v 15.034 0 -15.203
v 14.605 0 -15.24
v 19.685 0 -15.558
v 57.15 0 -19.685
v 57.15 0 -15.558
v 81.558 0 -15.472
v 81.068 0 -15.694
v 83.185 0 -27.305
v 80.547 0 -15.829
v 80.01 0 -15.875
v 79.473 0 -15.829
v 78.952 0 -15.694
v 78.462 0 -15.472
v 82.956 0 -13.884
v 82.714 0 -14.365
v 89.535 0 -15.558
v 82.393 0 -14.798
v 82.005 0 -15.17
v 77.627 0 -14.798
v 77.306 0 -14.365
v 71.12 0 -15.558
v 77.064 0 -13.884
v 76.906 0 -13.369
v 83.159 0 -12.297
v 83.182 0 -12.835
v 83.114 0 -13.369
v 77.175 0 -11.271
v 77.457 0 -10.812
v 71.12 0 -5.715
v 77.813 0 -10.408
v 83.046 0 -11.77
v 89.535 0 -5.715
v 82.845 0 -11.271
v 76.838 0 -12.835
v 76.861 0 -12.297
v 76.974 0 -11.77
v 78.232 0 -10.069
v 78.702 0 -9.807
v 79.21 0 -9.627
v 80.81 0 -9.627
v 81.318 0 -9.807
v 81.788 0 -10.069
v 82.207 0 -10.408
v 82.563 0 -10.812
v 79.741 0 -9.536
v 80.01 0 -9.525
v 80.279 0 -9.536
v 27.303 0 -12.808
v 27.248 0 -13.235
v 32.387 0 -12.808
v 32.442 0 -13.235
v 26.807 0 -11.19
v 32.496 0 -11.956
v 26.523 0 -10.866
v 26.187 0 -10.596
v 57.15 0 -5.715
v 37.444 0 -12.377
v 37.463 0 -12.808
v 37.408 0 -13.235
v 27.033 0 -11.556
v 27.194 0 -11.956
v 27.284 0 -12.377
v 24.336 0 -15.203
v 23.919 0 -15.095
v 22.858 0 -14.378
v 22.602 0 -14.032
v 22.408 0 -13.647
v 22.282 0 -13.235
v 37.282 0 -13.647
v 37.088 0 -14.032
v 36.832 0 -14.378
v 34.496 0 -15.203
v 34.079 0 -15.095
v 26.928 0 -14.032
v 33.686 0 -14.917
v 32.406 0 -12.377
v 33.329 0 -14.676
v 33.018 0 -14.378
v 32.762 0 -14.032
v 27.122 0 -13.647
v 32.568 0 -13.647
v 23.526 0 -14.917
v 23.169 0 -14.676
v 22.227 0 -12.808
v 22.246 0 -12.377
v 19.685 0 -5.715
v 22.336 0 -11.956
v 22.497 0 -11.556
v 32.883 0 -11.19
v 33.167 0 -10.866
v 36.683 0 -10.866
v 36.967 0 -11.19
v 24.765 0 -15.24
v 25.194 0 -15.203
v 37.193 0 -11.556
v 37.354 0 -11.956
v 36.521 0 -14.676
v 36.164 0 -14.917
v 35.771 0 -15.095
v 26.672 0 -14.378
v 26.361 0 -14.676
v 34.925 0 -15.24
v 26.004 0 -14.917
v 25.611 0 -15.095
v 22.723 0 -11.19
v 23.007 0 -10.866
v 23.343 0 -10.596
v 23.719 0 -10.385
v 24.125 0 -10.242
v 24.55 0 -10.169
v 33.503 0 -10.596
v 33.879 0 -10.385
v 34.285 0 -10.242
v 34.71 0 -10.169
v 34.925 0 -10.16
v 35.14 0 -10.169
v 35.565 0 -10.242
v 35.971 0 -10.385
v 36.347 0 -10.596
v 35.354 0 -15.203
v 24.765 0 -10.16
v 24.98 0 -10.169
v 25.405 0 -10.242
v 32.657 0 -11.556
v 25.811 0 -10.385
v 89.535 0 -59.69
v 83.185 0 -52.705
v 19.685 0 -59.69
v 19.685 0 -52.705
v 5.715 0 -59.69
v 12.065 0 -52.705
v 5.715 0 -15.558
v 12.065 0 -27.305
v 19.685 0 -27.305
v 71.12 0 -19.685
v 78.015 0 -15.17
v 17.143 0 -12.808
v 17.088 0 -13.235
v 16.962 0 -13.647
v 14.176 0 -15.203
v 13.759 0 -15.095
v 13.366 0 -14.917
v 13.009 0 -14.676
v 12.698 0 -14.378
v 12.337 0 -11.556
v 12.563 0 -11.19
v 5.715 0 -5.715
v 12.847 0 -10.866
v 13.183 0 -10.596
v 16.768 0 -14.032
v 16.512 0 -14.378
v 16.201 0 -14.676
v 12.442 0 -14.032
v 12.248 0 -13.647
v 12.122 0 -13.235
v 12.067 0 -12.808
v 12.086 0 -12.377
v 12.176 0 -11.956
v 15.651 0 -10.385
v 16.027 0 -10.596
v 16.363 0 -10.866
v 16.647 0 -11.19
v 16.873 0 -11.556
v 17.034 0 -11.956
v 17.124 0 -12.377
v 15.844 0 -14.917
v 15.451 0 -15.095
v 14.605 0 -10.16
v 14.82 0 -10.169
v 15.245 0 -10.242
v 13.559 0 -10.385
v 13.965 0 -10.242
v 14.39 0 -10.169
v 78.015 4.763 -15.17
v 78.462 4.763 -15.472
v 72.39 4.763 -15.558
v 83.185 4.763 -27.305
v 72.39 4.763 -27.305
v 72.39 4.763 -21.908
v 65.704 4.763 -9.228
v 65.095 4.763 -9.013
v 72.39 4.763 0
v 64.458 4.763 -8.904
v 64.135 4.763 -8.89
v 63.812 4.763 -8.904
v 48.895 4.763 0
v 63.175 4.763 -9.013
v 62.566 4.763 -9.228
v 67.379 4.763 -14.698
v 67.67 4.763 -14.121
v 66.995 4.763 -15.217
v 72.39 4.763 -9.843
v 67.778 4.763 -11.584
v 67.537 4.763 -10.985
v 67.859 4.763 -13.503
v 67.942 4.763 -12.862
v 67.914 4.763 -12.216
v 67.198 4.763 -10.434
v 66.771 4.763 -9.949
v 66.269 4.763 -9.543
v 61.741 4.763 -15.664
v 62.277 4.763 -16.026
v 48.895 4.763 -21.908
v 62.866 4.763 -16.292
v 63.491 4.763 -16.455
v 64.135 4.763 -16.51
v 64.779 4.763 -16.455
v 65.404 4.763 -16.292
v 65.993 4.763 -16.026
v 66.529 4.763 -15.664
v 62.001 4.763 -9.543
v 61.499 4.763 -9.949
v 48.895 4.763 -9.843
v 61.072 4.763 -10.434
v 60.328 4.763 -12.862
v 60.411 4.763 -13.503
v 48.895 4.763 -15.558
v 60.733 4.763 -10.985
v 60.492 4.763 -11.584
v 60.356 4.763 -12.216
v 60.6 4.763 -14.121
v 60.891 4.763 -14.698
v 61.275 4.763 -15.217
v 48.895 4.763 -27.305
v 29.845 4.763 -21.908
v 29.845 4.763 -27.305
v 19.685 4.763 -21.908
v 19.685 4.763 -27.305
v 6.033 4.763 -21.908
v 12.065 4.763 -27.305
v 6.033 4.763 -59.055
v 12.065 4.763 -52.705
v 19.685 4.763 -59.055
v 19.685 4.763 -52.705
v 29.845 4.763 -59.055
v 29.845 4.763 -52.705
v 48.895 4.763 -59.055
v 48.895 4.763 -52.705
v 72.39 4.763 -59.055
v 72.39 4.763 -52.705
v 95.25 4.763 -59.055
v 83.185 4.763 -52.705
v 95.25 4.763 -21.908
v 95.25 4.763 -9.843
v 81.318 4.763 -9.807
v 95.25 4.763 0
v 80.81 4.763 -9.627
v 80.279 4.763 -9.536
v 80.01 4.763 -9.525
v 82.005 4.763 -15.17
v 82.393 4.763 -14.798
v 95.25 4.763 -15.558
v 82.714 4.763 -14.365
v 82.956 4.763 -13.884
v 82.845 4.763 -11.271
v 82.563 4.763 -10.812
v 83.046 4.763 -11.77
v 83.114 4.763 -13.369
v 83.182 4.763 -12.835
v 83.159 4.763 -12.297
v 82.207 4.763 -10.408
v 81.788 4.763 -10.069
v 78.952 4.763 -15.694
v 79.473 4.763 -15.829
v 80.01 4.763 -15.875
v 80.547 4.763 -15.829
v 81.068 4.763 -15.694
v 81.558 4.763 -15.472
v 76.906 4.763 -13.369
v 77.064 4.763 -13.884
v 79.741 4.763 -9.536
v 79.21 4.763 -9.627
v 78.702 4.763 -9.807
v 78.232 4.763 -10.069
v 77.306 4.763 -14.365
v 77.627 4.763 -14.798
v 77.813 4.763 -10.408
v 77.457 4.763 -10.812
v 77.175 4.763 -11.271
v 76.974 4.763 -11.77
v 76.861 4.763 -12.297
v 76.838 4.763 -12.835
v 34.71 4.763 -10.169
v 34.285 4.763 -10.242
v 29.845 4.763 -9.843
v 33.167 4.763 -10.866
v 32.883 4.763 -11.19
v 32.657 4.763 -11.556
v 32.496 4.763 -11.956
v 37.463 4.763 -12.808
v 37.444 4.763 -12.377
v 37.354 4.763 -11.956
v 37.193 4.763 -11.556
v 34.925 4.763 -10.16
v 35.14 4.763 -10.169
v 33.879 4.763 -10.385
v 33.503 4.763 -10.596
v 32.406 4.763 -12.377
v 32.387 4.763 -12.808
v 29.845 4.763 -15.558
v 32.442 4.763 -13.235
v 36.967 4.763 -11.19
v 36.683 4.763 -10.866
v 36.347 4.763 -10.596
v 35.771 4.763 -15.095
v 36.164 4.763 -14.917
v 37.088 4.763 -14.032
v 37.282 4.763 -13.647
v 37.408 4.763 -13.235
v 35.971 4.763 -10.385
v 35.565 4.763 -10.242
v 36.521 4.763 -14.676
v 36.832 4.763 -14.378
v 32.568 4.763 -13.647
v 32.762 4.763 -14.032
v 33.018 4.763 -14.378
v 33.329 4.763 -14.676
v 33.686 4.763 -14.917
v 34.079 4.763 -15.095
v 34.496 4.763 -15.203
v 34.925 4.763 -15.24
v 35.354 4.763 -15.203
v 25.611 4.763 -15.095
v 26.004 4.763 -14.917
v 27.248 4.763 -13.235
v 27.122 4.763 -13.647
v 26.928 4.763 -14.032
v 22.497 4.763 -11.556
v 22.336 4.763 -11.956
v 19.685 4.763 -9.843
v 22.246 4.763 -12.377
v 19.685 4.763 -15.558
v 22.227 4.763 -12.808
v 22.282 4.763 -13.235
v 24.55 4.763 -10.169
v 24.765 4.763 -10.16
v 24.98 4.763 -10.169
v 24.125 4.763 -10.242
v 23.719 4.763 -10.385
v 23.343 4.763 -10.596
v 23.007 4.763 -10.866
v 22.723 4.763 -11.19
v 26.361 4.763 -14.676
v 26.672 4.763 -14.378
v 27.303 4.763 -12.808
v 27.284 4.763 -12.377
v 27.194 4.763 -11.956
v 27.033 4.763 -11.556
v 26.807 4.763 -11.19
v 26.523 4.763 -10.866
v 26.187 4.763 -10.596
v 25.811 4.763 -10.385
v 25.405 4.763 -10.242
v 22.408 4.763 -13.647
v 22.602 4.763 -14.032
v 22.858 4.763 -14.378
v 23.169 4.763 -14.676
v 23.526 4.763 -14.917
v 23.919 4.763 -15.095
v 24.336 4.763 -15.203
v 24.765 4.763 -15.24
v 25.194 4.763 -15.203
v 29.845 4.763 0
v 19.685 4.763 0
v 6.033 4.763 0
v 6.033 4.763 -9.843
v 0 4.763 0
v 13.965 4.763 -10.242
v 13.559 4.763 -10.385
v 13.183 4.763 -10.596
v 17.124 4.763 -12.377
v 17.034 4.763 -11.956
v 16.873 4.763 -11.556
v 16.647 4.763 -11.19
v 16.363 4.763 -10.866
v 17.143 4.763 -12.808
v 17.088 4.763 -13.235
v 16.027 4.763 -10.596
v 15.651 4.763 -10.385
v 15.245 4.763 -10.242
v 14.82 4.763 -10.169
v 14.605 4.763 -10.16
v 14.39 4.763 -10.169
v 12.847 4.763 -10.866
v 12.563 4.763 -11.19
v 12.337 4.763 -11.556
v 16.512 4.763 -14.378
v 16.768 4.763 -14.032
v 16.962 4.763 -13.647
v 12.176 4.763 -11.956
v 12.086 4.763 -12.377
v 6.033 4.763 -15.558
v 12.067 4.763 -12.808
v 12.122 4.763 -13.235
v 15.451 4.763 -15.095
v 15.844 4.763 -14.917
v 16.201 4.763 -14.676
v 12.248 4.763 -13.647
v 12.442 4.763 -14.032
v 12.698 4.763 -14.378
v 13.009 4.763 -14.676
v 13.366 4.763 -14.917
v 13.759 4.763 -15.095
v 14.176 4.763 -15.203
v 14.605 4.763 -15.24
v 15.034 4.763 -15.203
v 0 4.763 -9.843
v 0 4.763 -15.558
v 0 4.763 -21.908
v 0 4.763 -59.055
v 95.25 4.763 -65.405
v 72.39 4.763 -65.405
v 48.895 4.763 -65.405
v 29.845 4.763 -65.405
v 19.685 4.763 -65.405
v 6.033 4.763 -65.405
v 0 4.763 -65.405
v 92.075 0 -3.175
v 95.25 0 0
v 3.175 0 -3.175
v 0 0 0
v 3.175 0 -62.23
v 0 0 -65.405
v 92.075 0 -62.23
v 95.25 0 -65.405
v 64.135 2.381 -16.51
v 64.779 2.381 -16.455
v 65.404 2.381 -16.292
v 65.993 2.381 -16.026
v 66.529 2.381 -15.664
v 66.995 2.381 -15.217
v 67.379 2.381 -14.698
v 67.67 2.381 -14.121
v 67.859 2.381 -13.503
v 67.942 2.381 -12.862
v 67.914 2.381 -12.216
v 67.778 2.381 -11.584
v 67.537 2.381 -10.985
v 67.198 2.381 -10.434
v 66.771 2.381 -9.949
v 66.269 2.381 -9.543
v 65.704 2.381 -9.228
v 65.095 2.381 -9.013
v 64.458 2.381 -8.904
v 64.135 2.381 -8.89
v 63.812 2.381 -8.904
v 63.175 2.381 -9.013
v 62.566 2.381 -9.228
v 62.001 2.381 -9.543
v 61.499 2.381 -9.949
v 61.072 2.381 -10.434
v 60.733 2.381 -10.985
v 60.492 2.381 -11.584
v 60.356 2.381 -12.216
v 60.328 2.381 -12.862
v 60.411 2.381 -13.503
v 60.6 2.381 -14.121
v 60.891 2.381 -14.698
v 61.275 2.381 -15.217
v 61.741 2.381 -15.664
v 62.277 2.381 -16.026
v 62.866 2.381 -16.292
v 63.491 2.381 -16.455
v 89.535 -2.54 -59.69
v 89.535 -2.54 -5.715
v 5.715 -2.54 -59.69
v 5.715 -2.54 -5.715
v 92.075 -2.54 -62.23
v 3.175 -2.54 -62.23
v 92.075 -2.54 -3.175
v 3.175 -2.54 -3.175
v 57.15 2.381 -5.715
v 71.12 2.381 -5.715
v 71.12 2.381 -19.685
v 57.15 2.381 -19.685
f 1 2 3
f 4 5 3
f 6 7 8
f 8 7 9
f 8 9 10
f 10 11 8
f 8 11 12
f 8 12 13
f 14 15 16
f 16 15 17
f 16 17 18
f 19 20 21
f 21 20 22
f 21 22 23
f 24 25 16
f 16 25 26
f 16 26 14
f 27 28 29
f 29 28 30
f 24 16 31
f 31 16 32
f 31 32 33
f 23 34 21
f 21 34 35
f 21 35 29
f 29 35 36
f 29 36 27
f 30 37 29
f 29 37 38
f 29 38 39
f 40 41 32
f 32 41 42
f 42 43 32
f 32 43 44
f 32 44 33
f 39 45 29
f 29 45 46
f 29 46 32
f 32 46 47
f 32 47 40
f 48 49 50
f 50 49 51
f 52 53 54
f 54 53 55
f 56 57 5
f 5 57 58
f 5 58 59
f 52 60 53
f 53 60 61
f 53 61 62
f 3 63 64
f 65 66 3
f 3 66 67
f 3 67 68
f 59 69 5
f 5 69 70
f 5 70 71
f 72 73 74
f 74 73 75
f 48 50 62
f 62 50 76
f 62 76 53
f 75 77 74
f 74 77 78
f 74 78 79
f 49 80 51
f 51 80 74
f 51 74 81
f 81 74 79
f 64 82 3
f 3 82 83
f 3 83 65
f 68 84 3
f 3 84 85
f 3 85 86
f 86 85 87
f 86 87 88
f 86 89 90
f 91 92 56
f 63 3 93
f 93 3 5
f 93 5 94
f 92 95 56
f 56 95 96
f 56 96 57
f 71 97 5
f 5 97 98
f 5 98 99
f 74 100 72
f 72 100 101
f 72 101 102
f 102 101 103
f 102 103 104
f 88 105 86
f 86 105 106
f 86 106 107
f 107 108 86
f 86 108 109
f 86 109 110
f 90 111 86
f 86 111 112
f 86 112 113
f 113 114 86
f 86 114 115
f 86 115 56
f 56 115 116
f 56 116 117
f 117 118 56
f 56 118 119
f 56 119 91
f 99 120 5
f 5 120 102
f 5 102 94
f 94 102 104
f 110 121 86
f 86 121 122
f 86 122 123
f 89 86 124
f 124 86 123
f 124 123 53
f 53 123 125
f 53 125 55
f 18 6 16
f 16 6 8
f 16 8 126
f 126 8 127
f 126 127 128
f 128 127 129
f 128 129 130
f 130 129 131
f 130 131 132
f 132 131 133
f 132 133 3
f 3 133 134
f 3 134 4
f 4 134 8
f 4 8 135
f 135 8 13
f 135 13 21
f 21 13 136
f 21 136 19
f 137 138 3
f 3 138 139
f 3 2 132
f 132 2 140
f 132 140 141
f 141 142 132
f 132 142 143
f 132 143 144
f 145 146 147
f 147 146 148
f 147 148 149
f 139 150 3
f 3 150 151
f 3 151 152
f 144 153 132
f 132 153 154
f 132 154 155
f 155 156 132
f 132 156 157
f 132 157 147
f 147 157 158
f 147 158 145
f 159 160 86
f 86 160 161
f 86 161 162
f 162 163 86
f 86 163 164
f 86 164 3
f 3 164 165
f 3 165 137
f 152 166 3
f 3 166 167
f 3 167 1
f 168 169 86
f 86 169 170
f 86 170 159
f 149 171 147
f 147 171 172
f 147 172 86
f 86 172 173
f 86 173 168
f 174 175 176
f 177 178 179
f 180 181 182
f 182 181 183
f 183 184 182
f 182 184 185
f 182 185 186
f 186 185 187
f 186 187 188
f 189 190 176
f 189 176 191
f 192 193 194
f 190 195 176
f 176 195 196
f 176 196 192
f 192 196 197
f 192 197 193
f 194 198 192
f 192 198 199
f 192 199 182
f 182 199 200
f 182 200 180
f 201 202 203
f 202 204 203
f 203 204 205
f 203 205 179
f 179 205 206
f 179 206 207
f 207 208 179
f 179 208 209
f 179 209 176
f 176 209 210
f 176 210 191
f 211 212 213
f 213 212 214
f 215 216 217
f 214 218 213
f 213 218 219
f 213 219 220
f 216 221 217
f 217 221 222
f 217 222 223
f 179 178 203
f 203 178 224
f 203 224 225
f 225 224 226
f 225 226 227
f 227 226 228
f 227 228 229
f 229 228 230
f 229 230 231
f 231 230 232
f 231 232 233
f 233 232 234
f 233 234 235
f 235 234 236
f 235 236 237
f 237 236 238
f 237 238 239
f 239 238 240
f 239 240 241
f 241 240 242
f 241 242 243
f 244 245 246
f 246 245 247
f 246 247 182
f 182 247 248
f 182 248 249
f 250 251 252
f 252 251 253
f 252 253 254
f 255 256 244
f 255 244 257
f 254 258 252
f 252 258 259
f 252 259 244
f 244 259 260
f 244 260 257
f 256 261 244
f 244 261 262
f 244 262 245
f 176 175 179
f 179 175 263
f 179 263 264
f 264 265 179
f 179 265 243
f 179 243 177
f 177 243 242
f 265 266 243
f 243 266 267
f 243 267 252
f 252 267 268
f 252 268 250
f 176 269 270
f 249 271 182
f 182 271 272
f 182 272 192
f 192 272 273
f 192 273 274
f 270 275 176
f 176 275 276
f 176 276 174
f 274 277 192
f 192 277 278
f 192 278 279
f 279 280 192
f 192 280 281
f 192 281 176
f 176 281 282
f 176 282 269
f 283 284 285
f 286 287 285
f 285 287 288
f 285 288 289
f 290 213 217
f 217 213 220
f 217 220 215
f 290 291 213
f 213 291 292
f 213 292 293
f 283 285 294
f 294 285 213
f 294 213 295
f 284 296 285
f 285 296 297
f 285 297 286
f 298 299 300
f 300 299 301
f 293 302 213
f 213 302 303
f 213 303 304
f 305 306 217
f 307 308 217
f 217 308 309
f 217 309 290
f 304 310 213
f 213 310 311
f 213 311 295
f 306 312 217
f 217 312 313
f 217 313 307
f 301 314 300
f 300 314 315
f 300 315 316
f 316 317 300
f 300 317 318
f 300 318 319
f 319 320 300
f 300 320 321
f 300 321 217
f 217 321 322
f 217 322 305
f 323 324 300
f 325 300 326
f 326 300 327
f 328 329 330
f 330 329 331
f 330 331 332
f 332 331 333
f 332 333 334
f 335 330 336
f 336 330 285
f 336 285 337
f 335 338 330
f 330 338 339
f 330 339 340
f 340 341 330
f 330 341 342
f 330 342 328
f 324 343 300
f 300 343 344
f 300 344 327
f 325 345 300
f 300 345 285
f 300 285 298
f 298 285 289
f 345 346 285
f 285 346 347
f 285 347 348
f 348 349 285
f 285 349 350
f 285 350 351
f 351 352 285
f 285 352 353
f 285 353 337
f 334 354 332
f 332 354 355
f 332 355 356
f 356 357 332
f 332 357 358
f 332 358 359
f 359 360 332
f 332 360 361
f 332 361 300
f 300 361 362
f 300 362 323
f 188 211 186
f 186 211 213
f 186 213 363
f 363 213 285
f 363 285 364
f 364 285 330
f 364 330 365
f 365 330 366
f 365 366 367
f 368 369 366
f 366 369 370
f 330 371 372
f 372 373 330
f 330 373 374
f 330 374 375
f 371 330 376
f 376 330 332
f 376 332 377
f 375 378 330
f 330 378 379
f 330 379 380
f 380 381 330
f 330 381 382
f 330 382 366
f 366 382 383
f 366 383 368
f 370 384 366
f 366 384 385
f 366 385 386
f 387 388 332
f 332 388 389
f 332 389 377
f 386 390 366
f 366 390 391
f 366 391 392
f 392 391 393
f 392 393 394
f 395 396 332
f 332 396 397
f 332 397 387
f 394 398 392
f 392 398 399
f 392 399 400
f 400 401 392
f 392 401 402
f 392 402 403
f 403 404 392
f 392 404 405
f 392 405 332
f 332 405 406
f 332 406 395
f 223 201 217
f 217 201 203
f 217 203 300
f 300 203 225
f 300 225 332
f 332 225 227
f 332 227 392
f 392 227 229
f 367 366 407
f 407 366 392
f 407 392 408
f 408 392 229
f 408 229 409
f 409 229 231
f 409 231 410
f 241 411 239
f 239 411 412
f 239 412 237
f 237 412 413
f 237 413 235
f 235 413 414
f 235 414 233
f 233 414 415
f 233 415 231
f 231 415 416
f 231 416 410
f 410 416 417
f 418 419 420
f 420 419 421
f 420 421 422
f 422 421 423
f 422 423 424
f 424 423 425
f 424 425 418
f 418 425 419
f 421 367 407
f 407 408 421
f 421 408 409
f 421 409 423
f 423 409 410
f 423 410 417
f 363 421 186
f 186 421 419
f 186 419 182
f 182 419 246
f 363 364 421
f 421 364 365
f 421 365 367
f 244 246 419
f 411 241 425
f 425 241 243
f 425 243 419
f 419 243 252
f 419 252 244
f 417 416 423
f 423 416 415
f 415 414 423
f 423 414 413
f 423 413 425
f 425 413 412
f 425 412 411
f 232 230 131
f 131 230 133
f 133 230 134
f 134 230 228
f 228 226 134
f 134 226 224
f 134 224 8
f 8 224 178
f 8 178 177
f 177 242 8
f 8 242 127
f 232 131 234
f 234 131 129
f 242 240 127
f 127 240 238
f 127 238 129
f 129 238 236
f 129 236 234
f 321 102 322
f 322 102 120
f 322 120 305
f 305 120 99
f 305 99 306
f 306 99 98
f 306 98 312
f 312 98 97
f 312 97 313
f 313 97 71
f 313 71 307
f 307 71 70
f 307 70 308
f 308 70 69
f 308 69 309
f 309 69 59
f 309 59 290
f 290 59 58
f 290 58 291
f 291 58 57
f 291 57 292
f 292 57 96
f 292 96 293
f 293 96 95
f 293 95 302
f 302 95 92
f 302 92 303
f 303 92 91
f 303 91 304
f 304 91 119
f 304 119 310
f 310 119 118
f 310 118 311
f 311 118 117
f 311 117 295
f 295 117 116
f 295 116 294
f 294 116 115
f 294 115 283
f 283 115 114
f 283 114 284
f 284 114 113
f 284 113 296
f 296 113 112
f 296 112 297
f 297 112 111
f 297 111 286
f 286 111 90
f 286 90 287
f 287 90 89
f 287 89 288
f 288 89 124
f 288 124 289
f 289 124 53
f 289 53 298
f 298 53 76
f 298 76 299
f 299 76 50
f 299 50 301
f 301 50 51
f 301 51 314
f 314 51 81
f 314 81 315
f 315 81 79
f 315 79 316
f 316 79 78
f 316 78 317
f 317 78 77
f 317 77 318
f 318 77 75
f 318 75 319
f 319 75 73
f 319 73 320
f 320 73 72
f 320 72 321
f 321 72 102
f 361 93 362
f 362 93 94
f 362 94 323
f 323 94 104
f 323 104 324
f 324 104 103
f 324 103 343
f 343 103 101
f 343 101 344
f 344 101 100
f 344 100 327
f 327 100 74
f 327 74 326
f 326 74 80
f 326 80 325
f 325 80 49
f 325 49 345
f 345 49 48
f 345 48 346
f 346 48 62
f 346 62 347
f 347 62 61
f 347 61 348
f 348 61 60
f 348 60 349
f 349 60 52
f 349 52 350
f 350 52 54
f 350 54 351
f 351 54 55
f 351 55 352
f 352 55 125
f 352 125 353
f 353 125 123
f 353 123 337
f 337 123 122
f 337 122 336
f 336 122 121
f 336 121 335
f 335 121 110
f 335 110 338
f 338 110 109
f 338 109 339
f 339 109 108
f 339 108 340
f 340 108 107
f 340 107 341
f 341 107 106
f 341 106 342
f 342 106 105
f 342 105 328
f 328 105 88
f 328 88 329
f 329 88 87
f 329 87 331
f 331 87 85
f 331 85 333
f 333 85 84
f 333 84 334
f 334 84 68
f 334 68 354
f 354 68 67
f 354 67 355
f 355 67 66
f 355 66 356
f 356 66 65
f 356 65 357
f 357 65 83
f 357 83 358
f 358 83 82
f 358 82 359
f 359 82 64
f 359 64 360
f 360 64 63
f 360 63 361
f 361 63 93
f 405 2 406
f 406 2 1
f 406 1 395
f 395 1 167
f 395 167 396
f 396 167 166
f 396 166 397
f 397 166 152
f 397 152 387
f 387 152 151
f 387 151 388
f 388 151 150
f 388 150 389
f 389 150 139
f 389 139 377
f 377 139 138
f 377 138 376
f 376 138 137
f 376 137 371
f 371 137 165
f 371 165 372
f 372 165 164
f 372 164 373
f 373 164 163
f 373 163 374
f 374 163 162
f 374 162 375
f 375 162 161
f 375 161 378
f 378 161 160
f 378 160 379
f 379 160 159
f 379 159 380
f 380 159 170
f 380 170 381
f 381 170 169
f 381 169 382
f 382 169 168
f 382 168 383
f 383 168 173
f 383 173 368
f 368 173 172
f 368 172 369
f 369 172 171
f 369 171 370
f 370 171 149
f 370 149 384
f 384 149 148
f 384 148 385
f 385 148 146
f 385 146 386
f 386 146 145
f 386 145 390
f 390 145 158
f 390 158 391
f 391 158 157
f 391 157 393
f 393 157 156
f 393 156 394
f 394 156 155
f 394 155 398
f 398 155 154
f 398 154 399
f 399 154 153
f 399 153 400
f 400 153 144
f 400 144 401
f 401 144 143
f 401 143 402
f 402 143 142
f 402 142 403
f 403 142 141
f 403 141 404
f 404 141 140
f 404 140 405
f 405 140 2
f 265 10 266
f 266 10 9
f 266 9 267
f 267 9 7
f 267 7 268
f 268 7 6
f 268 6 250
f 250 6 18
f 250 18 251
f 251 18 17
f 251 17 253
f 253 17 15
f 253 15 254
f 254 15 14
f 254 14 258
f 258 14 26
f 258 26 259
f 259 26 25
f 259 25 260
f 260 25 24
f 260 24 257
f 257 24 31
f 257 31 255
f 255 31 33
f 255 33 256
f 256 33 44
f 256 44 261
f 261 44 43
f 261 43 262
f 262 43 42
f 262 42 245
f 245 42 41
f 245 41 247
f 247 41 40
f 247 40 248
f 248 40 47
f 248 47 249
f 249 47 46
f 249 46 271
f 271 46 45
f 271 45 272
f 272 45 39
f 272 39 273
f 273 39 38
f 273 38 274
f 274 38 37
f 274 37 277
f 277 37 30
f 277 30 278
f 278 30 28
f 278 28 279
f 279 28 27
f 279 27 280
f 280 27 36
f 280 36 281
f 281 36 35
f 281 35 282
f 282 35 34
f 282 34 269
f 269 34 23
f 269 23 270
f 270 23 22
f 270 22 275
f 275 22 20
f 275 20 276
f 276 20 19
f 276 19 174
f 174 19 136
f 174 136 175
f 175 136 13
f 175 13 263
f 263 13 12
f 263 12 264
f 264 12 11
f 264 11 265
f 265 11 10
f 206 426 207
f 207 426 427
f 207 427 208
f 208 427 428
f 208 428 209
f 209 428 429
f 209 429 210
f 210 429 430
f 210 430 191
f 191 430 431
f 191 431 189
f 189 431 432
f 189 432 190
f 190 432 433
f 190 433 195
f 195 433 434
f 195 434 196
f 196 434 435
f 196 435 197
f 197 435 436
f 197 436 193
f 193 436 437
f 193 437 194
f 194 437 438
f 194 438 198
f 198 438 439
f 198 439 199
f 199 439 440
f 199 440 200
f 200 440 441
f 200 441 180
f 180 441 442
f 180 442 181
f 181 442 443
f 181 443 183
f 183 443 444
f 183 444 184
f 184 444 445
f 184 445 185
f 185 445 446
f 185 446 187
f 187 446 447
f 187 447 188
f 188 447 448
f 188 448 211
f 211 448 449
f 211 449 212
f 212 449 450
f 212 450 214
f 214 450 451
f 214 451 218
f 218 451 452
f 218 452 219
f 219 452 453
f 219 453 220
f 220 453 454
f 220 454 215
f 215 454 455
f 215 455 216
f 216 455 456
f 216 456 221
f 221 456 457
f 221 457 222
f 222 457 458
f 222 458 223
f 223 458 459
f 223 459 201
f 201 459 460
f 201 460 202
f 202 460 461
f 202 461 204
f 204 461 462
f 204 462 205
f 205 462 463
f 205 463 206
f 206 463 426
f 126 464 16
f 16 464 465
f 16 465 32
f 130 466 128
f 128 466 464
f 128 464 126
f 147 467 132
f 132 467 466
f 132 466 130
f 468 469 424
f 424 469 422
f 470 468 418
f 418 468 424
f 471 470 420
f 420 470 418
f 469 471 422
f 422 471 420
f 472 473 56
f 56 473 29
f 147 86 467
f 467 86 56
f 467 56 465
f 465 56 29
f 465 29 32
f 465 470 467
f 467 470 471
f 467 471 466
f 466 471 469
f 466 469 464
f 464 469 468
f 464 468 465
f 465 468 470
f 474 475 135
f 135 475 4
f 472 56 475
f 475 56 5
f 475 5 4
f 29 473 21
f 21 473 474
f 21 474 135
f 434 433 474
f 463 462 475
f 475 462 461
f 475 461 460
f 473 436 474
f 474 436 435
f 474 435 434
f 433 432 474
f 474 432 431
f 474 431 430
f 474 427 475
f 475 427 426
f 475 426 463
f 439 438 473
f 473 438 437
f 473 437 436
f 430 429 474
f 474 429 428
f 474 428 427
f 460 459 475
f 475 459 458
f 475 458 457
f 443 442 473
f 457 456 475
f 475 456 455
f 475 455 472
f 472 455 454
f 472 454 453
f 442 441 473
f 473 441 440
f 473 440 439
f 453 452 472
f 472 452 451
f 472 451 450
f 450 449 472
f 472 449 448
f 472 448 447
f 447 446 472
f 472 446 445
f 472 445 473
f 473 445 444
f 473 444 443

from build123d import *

# Parameters (mm, degrees)
SKETCH1_W               = 95.25
SKETCH1_H               = 65.405
SKETCH1_R               = 2.54
SKETCH1_R_2             = 3.175
SKETCH1_R_3             = 3.81
SKETCH1_W_2             = 71.12
SKETCH1_H_2             = 25.4
BOSS_EXTRUDE1_DEPTH     = 4.7625
SKETCH3_W               = 88.9
SKETCH3_H               = 59.055
SKETCH3_W_2             = 83.82
SKETCH3_H_2             = 53.975
BOSS_EXTRUDE2_DEPTH     = 2.54
CUT_EXTRUDE1_DEPTH      = 116.641938462
CUT_EXTRUDE1_DEPTH_BACK = 2.38125
SKETCH2_W               = 13.97
SKETCH2_H               = 13.97


with BuildPart() as part:
    # Sketch1 → Boss-Extrude1 (new body)
    with BuildSketch(Plane(origin=(0, 0, 0), x_dir=(1, 0, 0), z_dir=(0, 1, 0))):
        with Locations((47.625, 32.7025)):
            Rectangle(SKETCH1_W, SKETCH1_H)
        with Locations(Location((34.925, 12.7, 0), (0, 0, 90))):
            Circle(SKETCH1_R, mode=Mode.SUBTRACT)
        with Locations(Location((14.605, 12.7, 0), (0, 0, 90))):
            Circle(SKETCH1_R, mode=Mode.SUBTRACT)
        with Locations(Location((24.765, 12.7, 0), (0, 0, 90))):
            Circle(SKETCH1_R, mode=Mode.SUBTRACT)
        with Locations(Location((80.01, 12.7, 0), (0, 0, 90))):
            Circle(SKETCH1_R_2, mode=Mode.SUBTRACT)
        with Locations(Location((64.135, 12.7, 0), (0, 0, 90))):
            Circle(SKETCH1_R_3, mode=Mode.SUBTRACT)
        with Locations((47.625, 40.005)):
            Rectangle(SKETCH1_W_2, SKETCH1_H_2, mode=Mode.SUBTRACT)
    extrude(amount=BOSS_EXTRUDE1_DEPTH)

    # Sketch3 → Boss-Extrude2 (add)
    with BuildSketch(Plane.XZ):
        with Locations((47.625, -32.7025)):
            Rectangle(SKETCH3_W, SKETCH3_H)
        with Locations((47.625, -32.7025)):
            Rectangle(SKETCH3_W_2, SKETCH3_H_2, mode=Mode.SUBTRACT)
    extrude(amount=BOSS_EXTRUDE2_DEPTH)

    # Sketch2 → Cut-Extrude1 (cut, two sides: drawn at the far end of the back side and taken through both)
    with BuildSketch(Plane.XZ.offset(-CUT_EXTRUDE1_DEPTH_BACK)):
        with Locations((64.135, -12.7)):
            Rectangle(SKETCH2_W, SKETCH2_H)
    extrude(amount=CUT_EXTRUDE1_DEPTH + CUT_EXTRUDE1_DEPTH_BACK, mode=Mode.SUBTRACT)


solid = part.part
